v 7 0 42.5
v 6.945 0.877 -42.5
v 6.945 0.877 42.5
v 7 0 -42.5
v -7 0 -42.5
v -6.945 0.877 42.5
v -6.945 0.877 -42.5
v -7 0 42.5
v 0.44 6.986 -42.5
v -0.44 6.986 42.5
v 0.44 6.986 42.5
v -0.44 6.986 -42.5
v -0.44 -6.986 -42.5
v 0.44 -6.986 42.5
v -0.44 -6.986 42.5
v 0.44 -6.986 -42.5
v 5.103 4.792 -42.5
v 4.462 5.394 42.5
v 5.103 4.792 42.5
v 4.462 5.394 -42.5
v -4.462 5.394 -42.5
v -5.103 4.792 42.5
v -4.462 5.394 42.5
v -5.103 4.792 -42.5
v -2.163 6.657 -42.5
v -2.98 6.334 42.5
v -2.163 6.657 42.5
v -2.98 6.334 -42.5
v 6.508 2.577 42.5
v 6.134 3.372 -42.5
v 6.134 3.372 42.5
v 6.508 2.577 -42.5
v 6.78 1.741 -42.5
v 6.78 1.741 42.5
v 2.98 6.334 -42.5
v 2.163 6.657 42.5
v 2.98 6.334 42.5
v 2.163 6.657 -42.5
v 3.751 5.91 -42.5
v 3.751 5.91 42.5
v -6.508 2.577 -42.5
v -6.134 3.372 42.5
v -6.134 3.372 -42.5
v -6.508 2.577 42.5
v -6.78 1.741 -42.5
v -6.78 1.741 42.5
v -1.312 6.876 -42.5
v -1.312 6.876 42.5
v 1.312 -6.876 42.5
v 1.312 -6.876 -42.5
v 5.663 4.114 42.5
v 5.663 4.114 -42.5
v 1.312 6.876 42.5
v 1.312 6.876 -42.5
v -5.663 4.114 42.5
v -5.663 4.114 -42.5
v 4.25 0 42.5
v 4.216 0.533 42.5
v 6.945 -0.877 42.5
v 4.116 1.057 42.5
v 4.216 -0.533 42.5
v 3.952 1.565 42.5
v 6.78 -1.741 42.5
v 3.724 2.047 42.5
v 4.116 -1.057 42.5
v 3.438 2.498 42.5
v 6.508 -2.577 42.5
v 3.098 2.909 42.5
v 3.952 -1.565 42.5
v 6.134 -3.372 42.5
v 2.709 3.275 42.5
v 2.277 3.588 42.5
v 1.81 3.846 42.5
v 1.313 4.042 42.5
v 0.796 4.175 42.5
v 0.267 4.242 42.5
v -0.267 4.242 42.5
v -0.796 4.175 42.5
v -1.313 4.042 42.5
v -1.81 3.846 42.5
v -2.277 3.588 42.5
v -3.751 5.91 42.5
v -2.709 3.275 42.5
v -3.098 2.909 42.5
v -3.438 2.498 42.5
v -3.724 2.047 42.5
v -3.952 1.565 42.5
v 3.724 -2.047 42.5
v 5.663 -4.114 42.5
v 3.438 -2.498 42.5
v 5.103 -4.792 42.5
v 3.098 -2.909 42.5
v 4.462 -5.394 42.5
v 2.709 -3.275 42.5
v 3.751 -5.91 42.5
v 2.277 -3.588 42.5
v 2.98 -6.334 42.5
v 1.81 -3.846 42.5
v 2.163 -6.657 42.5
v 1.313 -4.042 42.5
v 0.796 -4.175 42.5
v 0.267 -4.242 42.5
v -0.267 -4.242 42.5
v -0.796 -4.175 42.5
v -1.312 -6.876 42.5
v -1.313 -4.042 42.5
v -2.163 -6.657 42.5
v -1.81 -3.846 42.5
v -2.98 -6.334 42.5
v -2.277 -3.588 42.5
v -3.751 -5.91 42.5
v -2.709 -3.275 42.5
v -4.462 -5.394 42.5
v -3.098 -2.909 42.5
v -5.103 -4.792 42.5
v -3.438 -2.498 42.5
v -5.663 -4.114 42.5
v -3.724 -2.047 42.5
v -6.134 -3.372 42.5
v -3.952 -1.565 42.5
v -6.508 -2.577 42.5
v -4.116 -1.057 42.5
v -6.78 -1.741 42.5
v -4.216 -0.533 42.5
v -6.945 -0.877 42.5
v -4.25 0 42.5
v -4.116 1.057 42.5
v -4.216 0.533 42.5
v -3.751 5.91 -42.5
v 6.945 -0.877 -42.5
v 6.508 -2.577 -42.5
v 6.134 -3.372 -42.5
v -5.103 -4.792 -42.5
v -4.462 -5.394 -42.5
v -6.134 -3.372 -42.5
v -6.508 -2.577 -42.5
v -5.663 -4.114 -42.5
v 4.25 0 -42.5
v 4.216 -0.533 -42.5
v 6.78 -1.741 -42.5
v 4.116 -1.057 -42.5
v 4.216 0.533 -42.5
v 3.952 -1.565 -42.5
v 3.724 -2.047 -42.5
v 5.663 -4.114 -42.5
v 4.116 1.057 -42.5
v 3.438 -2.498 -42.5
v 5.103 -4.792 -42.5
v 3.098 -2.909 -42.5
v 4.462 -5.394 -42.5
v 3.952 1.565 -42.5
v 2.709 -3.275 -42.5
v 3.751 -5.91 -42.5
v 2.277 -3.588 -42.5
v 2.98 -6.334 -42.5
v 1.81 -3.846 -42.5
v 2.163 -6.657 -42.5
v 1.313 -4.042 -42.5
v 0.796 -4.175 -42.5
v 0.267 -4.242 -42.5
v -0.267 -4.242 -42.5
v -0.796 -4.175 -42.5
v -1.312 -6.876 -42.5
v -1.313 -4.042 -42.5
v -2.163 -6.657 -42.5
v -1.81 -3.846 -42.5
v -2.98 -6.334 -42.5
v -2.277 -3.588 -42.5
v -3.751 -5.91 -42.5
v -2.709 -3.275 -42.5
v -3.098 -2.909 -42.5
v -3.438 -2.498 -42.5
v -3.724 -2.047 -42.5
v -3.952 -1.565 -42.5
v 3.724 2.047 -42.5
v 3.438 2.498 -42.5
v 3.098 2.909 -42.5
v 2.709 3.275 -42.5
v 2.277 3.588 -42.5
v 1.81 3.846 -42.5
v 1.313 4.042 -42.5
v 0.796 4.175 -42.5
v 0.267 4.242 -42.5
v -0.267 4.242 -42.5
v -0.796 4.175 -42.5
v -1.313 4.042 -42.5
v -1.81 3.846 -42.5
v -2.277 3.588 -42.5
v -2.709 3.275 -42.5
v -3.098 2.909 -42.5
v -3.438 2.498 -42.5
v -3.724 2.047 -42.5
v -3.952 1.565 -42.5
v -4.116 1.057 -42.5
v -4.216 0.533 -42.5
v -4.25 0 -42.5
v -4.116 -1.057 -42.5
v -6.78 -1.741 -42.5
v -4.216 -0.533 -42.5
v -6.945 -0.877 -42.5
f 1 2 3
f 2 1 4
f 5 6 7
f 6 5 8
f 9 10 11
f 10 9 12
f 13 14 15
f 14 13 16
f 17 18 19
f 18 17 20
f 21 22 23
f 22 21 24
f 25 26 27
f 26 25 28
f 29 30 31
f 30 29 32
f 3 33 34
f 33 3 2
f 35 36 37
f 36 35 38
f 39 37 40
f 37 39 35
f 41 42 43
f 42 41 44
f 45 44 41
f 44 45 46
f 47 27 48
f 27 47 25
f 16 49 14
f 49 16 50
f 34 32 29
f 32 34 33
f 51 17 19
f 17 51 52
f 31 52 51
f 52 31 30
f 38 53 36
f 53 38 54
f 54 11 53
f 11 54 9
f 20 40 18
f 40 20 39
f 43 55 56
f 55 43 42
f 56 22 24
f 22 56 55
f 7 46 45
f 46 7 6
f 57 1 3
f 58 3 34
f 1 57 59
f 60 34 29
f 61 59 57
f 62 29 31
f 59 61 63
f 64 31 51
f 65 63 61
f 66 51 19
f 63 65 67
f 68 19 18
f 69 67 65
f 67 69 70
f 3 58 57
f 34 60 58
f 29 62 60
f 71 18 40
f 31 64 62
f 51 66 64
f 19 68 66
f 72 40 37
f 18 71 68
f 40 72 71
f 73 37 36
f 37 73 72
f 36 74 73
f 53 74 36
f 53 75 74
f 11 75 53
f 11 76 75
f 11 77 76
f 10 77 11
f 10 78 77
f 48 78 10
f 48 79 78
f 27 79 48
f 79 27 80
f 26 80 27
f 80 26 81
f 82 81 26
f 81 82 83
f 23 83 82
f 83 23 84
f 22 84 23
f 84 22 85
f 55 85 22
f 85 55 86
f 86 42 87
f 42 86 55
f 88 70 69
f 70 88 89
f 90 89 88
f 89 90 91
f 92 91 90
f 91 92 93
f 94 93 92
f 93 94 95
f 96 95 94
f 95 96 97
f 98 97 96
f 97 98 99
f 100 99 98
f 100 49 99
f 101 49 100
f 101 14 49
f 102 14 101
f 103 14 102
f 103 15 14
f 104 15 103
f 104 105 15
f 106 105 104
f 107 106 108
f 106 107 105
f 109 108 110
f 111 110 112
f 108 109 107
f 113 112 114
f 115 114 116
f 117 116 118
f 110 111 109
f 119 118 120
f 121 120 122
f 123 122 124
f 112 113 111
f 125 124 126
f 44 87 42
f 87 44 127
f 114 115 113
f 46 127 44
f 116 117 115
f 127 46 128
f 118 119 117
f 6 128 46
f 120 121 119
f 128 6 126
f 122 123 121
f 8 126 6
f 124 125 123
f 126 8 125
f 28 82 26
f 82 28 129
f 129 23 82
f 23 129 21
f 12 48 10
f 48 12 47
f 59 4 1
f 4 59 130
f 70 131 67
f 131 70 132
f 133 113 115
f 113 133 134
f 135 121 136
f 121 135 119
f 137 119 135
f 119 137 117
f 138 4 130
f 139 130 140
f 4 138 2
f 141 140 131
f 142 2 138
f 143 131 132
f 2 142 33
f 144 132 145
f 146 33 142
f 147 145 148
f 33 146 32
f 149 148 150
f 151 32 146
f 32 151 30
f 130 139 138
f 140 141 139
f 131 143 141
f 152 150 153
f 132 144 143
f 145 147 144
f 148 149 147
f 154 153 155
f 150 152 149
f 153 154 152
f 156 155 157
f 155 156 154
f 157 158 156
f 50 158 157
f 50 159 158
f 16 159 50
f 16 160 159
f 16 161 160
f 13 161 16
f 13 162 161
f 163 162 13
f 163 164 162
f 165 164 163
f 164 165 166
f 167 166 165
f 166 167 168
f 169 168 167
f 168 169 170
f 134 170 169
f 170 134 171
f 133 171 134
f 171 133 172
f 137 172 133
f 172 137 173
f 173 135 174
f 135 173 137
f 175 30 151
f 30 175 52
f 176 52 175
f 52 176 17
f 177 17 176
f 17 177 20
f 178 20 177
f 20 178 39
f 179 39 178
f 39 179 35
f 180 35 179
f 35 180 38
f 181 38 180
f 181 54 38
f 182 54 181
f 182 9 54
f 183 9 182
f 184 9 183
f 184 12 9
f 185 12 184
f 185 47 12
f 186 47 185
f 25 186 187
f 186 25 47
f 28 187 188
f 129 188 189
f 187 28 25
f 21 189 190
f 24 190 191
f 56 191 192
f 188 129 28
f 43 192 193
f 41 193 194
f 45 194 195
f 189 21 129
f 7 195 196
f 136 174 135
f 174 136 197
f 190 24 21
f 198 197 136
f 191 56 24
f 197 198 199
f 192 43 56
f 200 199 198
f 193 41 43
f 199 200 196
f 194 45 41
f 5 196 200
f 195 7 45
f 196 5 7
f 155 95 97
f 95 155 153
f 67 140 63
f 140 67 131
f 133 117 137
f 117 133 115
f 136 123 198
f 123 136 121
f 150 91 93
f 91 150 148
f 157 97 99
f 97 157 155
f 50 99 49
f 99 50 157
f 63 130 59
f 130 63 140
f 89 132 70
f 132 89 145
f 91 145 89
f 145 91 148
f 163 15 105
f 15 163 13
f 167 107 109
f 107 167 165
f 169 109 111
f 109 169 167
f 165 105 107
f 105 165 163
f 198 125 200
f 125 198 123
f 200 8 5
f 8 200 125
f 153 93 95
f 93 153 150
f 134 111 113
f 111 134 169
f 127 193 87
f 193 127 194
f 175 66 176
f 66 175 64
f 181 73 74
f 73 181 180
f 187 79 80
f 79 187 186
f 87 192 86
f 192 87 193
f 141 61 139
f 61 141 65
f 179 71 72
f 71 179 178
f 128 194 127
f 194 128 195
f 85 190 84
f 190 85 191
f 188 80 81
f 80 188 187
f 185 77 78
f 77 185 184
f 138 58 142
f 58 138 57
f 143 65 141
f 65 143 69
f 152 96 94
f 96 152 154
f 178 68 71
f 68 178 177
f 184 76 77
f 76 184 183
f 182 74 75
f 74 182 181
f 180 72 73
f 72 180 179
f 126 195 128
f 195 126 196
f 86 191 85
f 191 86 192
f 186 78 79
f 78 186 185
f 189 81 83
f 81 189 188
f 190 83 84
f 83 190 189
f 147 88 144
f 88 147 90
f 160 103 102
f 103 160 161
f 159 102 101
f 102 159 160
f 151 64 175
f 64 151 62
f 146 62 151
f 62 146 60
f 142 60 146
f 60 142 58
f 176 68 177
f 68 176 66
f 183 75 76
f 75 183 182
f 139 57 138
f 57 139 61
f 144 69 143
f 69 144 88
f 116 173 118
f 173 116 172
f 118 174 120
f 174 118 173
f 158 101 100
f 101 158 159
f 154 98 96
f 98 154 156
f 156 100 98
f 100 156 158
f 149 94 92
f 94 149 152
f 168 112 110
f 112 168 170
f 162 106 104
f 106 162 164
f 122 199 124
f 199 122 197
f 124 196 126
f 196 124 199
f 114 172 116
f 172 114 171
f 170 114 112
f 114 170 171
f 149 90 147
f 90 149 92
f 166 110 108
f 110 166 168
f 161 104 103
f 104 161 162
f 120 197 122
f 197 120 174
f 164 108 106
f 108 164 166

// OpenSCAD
$fn = 50;


difference() {
	union() {
		translate(v = [0, 0, -42.5000000000]) {
			cylinder(h = 85, r = 7.0000000000);
		}
	}
	union() {
		translate(v = [0, 0, -100.0000000000]) {
			cylinder(h = 200, r = 4.2500000000);
		}
	}
}
